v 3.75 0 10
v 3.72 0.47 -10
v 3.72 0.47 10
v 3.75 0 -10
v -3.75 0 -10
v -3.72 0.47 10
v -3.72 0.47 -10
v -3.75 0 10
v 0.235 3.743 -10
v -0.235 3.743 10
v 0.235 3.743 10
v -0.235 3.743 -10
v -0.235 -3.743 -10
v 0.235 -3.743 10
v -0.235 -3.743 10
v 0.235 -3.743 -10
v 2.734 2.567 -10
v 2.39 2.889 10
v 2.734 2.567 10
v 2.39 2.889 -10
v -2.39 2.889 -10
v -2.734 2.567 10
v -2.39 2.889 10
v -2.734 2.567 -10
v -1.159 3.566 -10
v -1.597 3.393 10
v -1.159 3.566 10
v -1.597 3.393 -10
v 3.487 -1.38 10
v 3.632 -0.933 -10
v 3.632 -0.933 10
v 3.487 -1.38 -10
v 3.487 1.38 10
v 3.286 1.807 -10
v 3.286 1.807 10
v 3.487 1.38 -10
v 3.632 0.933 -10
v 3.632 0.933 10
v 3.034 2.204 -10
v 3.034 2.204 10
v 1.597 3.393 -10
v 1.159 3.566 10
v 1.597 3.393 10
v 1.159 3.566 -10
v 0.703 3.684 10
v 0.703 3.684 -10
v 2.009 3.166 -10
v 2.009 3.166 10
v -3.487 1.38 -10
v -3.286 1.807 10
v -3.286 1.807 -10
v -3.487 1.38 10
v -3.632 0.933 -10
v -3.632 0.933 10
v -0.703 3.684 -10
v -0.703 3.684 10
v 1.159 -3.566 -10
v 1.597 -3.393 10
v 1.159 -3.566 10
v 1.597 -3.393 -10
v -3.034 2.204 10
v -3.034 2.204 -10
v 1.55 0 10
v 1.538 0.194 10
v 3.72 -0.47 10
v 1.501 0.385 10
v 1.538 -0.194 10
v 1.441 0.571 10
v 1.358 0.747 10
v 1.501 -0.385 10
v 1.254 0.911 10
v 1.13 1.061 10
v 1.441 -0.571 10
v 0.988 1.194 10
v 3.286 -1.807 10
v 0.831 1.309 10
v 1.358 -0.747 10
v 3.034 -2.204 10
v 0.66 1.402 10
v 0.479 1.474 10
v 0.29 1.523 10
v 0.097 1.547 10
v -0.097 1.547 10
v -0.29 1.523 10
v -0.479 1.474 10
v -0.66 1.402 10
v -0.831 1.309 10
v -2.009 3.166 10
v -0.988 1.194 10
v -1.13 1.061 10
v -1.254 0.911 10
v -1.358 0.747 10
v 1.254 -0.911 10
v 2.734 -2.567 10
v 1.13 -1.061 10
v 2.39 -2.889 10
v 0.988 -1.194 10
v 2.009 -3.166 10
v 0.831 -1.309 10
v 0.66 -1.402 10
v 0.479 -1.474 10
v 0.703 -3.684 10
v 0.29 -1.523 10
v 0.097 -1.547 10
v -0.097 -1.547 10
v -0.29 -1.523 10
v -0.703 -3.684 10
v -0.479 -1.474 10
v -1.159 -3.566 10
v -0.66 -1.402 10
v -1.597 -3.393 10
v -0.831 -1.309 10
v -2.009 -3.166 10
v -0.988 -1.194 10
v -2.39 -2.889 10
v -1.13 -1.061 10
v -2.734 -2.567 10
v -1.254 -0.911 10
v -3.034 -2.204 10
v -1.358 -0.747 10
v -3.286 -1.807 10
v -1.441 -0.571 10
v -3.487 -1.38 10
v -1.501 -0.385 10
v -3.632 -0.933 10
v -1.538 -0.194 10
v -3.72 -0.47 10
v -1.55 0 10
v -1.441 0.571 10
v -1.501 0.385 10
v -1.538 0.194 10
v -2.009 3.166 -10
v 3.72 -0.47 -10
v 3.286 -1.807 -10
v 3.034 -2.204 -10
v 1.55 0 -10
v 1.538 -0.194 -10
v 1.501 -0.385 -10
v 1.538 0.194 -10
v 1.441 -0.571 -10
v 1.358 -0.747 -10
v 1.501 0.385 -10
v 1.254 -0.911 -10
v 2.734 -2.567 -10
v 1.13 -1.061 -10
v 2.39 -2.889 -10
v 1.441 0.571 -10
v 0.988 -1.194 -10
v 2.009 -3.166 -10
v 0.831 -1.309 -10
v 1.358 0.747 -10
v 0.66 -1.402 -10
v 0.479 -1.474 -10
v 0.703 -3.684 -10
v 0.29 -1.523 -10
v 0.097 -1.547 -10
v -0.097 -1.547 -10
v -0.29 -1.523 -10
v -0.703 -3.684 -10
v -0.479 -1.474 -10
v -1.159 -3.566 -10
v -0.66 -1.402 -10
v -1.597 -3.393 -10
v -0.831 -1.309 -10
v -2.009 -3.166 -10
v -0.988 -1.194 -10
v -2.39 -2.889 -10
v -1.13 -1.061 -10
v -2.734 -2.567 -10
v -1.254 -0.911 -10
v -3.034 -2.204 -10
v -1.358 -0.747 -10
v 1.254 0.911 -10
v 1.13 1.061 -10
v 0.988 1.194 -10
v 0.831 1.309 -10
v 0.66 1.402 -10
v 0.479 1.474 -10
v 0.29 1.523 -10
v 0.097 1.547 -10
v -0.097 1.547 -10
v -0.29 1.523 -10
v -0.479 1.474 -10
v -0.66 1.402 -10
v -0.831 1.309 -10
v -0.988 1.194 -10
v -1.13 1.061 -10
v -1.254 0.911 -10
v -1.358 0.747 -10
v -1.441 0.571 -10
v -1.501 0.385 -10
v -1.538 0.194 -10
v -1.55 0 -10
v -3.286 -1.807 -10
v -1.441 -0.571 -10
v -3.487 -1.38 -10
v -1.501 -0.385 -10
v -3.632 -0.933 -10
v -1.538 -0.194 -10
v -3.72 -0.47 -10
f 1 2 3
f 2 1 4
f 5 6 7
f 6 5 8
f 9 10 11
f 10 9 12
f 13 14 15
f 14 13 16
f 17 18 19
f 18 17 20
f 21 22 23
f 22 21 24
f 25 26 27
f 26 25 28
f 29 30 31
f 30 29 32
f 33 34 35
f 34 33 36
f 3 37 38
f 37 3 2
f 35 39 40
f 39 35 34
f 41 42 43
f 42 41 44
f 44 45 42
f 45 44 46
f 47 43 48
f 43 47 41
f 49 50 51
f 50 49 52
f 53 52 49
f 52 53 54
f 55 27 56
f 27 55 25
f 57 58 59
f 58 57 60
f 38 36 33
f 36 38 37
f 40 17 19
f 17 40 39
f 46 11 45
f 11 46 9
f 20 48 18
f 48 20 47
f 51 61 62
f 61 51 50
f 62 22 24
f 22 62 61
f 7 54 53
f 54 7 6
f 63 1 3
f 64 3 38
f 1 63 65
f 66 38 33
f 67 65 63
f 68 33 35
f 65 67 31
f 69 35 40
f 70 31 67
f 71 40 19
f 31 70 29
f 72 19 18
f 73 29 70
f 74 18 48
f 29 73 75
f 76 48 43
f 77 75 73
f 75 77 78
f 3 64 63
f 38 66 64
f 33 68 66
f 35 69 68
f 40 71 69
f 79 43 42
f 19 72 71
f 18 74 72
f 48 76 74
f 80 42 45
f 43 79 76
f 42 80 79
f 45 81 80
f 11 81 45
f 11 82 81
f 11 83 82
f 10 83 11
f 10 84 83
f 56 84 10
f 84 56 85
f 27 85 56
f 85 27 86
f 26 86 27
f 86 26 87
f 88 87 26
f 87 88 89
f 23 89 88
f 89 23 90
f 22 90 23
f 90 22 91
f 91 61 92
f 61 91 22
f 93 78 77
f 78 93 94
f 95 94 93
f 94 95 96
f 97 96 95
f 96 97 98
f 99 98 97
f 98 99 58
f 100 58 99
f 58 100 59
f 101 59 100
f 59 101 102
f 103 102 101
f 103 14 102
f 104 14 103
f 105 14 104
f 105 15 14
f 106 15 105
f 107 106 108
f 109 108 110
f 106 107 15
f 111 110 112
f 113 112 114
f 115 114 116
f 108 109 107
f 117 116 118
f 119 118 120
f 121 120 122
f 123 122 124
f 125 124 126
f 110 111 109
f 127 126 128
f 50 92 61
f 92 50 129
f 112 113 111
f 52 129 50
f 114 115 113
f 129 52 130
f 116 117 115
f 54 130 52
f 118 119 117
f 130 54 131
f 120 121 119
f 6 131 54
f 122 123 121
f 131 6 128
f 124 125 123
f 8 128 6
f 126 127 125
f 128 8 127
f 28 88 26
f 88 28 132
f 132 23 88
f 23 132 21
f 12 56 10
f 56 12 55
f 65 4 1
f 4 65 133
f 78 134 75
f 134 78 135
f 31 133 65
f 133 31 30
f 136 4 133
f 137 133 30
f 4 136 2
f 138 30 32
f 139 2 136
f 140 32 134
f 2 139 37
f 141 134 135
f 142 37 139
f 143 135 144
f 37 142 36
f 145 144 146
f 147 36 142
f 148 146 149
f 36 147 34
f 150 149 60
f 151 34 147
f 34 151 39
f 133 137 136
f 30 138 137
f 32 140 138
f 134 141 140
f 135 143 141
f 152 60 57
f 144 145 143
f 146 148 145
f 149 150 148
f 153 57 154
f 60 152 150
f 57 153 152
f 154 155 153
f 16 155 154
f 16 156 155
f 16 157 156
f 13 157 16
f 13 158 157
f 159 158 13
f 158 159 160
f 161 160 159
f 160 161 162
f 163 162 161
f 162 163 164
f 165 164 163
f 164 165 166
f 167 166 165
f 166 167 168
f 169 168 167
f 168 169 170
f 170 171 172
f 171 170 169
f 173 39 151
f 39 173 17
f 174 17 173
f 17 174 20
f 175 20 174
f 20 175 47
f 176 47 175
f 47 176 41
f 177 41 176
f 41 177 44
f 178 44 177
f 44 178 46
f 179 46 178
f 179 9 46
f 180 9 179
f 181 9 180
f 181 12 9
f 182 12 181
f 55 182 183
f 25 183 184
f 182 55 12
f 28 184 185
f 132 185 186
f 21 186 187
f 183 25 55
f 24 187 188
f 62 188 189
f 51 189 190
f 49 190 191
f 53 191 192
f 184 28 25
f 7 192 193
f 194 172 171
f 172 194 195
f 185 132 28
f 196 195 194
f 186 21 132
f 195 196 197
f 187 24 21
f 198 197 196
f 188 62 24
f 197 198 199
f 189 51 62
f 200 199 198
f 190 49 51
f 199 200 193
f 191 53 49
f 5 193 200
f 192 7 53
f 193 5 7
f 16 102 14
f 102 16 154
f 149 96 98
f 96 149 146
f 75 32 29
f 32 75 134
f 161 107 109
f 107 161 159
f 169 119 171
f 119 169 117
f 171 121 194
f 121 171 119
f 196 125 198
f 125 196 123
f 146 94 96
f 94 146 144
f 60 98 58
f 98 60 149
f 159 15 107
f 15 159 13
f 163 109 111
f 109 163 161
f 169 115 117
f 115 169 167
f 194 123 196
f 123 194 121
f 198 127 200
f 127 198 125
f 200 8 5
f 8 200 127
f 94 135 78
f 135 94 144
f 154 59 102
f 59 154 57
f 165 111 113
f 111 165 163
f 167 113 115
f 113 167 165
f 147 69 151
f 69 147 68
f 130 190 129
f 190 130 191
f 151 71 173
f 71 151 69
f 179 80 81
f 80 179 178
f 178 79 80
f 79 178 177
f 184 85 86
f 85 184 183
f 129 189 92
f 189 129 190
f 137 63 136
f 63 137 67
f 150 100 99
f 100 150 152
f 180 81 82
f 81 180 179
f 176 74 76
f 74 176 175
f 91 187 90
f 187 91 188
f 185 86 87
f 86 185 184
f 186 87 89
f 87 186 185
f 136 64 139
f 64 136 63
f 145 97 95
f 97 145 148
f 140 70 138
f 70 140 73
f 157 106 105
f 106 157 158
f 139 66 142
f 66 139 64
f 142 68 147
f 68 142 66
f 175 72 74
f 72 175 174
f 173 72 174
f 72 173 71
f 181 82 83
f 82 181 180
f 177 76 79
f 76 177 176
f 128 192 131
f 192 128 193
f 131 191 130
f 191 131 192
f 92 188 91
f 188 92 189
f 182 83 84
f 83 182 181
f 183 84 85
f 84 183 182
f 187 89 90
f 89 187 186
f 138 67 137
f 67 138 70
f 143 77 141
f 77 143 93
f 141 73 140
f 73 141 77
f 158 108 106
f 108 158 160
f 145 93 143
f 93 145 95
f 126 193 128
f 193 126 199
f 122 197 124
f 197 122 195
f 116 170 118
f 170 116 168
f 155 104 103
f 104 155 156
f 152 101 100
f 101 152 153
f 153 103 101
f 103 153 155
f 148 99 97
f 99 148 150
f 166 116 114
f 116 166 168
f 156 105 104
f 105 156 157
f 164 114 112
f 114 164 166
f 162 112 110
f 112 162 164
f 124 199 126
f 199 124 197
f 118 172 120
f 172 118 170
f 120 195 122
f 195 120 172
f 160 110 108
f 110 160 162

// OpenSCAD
$fn = 50;


difference() {
	union() {
		translate(v = [0, 0, -10.0000000000]) {
			cylinder(h = 20, r = 3.7500000000);
		}
	}
	union() {
		translate(v = [0, 0, -100.0000000000]) {
			cylinder(h = 200, r = 1.5500000000);
		}
	}
}
